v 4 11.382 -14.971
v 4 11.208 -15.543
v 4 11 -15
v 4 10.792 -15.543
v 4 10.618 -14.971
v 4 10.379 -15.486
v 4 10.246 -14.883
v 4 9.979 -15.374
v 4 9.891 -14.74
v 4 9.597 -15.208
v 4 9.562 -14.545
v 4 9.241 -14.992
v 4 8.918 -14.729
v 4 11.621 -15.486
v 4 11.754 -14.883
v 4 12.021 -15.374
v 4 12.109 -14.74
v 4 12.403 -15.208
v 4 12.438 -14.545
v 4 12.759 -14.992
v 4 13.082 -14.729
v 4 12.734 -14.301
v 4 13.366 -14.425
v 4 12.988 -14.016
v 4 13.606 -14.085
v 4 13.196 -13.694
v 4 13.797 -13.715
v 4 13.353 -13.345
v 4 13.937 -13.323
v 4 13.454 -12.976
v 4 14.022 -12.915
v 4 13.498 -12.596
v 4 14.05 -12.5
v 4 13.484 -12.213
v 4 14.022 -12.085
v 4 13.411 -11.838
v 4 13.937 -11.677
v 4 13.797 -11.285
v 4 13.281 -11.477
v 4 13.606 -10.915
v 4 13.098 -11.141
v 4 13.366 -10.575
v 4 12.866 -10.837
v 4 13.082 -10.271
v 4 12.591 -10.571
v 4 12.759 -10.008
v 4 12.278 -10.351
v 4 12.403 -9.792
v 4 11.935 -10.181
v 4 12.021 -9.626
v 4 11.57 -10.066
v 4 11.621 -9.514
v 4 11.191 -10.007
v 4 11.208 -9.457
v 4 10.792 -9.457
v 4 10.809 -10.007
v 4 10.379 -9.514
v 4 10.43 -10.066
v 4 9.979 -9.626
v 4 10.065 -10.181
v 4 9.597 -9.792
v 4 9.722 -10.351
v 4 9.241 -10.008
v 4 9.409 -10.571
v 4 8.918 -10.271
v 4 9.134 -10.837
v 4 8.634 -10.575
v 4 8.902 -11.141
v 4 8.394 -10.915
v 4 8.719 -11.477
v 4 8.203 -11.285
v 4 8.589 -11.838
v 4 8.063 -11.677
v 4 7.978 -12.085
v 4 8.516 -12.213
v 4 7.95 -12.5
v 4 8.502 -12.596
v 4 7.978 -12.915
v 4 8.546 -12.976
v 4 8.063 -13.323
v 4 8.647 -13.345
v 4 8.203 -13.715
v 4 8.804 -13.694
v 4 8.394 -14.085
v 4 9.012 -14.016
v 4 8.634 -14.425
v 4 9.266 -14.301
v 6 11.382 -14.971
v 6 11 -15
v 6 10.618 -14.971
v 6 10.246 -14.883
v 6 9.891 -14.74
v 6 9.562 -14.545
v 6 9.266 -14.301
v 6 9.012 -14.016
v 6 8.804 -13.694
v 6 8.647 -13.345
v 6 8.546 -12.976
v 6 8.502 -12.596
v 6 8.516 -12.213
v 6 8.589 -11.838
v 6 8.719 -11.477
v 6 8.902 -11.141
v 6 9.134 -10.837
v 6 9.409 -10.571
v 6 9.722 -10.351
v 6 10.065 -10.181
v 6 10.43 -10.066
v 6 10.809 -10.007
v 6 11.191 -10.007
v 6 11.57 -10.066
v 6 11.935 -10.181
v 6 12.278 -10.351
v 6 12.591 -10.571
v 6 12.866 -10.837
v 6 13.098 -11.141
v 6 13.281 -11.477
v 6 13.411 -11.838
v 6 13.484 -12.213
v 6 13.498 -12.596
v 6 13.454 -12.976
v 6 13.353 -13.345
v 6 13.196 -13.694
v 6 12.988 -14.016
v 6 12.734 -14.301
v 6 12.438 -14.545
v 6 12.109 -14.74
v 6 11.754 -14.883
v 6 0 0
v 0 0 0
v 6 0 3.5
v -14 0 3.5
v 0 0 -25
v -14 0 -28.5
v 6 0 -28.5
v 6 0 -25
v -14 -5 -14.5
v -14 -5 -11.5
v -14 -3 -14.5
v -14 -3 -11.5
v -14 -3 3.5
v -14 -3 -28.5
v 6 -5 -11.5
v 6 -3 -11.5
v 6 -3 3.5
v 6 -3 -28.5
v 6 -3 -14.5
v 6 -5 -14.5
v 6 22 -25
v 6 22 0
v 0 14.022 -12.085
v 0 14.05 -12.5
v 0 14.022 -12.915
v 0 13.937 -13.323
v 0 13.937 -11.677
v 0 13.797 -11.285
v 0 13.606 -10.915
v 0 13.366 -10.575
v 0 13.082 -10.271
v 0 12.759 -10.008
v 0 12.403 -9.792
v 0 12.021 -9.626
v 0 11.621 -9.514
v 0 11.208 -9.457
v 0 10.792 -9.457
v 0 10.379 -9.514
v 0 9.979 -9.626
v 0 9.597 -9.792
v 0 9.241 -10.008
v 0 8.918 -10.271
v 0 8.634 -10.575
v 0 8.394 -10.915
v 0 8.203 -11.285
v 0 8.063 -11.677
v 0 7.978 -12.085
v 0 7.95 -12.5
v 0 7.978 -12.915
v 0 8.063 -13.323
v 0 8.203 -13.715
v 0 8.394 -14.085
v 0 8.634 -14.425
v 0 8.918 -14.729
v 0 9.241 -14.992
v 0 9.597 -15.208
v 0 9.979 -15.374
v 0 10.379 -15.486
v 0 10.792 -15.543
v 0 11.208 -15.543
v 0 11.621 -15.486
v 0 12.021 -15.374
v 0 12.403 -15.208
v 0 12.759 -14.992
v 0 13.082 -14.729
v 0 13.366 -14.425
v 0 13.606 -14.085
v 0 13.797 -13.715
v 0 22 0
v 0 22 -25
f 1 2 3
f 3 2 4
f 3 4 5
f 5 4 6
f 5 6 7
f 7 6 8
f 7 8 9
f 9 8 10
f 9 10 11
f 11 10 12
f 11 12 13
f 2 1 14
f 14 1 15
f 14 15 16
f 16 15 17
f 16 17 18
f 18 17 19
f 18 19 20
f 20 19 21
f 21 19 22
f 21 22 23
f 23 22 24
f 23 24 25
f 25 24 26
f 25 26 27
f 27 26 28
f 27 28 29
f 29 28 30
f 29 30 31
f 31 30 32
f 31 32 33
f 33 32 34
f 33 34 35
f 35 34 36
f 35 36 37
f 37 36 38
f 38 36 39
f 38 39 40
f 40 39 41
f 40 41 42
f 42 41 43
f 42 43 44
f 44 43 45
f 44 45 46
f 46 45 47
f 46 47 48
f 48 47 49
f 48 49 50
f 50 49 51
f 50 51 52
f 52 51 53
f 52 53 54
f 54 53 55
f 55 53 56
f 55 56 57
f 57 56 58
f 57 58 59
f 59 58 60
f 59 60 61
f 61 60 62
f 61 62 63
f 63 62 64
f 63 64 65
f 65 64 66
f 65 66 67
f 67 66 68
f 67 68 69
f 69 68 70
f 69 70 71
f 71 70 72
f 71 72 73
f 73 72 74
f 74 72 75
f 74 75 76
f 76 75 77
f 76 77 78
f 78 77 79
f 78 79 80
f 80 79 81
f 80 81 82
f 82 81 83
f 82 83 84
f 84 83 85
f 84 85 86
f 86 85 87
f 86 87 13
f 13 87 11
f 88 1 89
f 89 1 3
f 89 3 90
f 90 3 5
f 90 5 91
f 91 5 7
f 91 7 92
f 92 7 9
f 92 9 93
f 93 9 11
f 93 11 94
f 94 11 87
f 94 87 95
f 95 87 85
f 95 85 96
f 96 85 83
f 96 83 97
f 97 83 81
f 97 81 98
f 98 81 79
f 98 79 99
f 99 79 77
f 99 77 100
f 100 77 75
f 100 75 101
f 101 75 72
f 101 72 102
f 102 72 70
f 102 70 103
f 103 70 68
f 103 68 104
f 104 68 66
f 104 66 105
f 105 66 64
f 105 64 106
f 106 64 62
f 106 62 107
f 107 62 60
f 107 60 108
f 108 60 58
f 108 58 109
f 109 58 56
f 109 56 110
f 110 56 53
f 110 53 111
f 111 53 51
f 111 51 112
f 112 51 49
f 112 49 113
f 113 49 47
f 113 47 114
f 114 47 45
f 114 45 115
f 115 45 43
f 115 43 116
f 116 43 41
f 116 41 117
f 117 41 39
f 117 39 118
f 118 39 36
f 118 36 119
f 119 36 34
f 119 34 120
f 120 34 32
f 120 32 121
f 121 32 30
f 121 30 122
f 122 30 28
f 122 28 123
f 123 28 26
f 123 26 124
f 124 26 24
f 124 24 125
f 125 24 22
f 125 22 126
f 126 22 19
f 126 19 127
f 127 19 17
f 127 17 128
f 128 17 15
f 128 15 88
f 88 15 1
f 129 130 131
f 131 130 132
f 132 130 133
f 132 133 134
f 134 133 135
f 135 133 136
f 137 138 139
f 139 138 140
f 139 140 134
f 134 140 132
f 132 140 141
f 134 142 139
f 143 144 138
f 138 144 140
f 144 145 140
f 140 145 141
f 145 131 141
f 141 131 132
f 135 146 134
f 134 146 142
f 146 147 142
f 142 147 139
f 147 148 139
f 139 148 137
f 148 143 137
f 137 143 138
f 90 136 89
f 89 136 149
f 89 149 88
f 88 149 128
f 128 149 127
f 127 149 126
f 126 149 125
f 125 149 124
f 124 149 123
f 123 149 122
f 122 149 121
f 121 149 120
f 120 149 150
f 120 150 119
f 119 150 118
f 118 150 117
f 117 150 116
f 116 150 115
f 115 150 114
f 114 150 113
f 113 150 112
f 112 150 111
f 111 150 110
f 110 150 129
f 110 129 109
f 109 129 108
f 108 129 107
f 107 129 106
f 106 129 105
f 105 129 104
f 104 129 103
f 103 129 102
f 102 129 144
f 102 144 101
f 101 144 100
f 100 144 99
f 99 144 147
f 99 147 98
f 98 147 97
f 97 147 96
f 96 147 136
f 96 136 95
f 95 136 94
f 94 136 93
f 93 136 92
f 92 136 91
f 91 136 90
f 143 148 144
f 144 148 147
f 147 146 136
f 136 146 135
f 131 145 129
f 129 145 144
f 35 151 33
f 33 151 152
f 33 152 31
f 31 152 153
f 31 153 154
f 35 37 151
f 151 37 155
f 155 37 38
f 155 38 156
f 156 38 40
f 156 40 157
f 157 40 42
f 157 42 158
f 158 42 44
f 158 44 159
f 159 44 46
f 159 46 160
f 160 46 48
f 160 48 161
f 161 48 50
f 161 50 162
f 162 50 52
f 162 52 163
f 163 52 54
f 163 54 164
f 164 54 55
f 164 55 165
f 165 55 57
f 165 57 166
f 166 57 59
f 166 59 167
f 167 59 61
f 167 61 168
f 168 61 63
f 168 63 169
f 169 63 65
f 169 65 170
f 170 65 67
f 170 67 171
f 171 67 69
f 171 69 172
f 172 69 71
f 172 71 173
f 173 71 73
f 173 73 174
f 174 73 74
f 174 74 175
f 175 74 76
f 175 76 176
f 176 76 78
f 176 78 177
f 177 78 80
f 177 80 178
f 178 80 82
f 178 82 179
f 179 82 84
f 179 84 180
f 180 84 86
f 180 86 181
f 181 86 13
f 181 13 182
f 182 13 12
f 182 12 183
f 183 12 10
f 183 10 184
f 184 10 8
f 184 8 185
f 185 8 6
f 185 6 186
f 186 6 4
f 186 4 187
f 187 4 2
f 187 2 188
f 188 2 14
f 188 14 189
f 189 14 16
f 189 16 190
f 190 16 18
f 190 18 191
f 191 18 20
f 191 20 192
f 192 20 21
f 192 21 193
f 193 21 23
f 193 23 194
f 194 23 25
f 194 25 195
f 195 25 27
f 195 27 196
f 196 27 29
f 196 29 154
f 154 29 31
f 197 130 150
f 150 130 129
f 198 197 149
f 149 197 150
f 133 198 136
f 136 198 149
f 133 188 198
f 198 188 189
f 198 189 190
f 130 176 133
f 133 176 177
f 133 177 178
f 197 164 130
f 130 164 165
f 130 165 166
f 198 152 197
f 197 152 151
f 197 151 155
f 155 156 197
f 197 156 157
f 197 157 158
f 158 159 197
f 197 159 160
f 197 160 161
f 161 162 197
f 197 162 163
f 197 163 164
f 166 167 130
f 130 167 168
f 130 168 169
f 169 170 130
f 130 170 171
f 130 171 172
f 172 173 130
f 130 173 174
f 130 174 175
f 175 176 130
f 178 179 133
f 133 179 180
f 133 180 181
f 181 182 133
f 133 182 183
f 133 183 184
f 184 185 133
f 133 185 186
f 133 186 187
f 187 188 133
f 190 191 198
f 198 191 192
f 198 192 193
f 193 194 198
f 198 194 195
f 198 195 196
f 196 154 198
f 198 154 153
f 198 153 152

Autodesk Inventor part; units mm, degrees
ref_plane "YZ Plane" through (0, 0, 0) normal (1, 0, 0) x (0, 1, 0)
ref_plane "XZ Plane" through (0, 0, 0) normal (0, 1, 0) x (-1, 0, 0)
ref_plane "XY Plane" through (0, 0, 0) normal (0, 0, 1) x (1, 0, 0)
sketch "Sketch1" plane through (0, 0, 0) normal (1, 0, 0) x (0, 1, 0)
  line L0 (0, 0) -> (22, 0)
  line L1 (22, 0) -> (22, -25)
  line L2 (22, -25) -> (0, -25)
  line L3 (0, -25) -> (0, 0)
  circle A0 centre (11, -12.5) radius 3.05
  dimension "d0" = 22
  dimension "d1" = 25
  dimension "d2" = 6.1
  dimension "d3" = 11
  dimension "d4" = 12.5
extrude "Extrusion1" add sketch "Sketch1" along normal blind 4
sketch "Sketch2" plane through (4, 0, 0) normal (1, 0, 0) x (0, 0, -1)
  line L0 (-3.5, 0) -> (28.5, 0)
  line L1 (28.5, 0) -> (28.5, -3)
  line L2 (-3.5, -3) -> (-3.5, 0)
  line L3 (0, 22) -> (0, 0) projected
  line L4 (25, 0) -> (25, 22) projected
  line L5 (0, 0) -> (25, 0) projected
  line L6 (11.5, -3) -> (14.5, -3)
  line L7 (14.5, -3) -> (14.5, -5)
  line L8 (14.5, -5) -> (11.5, -5)
  line L9 (11.5, -5) -> (11.5, -3)
  line L10 (28.5, -3) -> (14.5, -3)
  line L11 (11.5, -3) -> (-3.5, -3)
  dimension "d8" = 3
  dimension "d9" = 3.5
  dimension "d10" = 3.5
  dimension "d13" = 3
  dimension "d14" = 2
  dimension "d15" = 11.5
extrude "Extrusion2" add sketch "Sketch2" along normal blind 2 and the other way blind 18
sketch "Sketch3" plane through (4, 0, 0) normal (1, 0, 0) x (0, 0, -1)
  line L0 (25, 22) -> (0, 22) projected
  line L1 (0, 22) -> (0, 0) projected
  line L2 (25, 22) -> (0, 22)
  line L3 (0, 22) -> (0, 0)
  line L4 (0, 0) -> (25, 0)
  line L5 (25, 0) -> (25, 22)
  circle A0 centre (12.5, 11) radius 2.5
  dimension "d16" = 5
  dimension "d17" = 12.5
  dimension "d18" = 11
extrude "Extrusion3" add sketch "Sketch3" along normal blind 2
equation "\"d3\" = 0.5 * d0"
properties part number "_3DPrint"
